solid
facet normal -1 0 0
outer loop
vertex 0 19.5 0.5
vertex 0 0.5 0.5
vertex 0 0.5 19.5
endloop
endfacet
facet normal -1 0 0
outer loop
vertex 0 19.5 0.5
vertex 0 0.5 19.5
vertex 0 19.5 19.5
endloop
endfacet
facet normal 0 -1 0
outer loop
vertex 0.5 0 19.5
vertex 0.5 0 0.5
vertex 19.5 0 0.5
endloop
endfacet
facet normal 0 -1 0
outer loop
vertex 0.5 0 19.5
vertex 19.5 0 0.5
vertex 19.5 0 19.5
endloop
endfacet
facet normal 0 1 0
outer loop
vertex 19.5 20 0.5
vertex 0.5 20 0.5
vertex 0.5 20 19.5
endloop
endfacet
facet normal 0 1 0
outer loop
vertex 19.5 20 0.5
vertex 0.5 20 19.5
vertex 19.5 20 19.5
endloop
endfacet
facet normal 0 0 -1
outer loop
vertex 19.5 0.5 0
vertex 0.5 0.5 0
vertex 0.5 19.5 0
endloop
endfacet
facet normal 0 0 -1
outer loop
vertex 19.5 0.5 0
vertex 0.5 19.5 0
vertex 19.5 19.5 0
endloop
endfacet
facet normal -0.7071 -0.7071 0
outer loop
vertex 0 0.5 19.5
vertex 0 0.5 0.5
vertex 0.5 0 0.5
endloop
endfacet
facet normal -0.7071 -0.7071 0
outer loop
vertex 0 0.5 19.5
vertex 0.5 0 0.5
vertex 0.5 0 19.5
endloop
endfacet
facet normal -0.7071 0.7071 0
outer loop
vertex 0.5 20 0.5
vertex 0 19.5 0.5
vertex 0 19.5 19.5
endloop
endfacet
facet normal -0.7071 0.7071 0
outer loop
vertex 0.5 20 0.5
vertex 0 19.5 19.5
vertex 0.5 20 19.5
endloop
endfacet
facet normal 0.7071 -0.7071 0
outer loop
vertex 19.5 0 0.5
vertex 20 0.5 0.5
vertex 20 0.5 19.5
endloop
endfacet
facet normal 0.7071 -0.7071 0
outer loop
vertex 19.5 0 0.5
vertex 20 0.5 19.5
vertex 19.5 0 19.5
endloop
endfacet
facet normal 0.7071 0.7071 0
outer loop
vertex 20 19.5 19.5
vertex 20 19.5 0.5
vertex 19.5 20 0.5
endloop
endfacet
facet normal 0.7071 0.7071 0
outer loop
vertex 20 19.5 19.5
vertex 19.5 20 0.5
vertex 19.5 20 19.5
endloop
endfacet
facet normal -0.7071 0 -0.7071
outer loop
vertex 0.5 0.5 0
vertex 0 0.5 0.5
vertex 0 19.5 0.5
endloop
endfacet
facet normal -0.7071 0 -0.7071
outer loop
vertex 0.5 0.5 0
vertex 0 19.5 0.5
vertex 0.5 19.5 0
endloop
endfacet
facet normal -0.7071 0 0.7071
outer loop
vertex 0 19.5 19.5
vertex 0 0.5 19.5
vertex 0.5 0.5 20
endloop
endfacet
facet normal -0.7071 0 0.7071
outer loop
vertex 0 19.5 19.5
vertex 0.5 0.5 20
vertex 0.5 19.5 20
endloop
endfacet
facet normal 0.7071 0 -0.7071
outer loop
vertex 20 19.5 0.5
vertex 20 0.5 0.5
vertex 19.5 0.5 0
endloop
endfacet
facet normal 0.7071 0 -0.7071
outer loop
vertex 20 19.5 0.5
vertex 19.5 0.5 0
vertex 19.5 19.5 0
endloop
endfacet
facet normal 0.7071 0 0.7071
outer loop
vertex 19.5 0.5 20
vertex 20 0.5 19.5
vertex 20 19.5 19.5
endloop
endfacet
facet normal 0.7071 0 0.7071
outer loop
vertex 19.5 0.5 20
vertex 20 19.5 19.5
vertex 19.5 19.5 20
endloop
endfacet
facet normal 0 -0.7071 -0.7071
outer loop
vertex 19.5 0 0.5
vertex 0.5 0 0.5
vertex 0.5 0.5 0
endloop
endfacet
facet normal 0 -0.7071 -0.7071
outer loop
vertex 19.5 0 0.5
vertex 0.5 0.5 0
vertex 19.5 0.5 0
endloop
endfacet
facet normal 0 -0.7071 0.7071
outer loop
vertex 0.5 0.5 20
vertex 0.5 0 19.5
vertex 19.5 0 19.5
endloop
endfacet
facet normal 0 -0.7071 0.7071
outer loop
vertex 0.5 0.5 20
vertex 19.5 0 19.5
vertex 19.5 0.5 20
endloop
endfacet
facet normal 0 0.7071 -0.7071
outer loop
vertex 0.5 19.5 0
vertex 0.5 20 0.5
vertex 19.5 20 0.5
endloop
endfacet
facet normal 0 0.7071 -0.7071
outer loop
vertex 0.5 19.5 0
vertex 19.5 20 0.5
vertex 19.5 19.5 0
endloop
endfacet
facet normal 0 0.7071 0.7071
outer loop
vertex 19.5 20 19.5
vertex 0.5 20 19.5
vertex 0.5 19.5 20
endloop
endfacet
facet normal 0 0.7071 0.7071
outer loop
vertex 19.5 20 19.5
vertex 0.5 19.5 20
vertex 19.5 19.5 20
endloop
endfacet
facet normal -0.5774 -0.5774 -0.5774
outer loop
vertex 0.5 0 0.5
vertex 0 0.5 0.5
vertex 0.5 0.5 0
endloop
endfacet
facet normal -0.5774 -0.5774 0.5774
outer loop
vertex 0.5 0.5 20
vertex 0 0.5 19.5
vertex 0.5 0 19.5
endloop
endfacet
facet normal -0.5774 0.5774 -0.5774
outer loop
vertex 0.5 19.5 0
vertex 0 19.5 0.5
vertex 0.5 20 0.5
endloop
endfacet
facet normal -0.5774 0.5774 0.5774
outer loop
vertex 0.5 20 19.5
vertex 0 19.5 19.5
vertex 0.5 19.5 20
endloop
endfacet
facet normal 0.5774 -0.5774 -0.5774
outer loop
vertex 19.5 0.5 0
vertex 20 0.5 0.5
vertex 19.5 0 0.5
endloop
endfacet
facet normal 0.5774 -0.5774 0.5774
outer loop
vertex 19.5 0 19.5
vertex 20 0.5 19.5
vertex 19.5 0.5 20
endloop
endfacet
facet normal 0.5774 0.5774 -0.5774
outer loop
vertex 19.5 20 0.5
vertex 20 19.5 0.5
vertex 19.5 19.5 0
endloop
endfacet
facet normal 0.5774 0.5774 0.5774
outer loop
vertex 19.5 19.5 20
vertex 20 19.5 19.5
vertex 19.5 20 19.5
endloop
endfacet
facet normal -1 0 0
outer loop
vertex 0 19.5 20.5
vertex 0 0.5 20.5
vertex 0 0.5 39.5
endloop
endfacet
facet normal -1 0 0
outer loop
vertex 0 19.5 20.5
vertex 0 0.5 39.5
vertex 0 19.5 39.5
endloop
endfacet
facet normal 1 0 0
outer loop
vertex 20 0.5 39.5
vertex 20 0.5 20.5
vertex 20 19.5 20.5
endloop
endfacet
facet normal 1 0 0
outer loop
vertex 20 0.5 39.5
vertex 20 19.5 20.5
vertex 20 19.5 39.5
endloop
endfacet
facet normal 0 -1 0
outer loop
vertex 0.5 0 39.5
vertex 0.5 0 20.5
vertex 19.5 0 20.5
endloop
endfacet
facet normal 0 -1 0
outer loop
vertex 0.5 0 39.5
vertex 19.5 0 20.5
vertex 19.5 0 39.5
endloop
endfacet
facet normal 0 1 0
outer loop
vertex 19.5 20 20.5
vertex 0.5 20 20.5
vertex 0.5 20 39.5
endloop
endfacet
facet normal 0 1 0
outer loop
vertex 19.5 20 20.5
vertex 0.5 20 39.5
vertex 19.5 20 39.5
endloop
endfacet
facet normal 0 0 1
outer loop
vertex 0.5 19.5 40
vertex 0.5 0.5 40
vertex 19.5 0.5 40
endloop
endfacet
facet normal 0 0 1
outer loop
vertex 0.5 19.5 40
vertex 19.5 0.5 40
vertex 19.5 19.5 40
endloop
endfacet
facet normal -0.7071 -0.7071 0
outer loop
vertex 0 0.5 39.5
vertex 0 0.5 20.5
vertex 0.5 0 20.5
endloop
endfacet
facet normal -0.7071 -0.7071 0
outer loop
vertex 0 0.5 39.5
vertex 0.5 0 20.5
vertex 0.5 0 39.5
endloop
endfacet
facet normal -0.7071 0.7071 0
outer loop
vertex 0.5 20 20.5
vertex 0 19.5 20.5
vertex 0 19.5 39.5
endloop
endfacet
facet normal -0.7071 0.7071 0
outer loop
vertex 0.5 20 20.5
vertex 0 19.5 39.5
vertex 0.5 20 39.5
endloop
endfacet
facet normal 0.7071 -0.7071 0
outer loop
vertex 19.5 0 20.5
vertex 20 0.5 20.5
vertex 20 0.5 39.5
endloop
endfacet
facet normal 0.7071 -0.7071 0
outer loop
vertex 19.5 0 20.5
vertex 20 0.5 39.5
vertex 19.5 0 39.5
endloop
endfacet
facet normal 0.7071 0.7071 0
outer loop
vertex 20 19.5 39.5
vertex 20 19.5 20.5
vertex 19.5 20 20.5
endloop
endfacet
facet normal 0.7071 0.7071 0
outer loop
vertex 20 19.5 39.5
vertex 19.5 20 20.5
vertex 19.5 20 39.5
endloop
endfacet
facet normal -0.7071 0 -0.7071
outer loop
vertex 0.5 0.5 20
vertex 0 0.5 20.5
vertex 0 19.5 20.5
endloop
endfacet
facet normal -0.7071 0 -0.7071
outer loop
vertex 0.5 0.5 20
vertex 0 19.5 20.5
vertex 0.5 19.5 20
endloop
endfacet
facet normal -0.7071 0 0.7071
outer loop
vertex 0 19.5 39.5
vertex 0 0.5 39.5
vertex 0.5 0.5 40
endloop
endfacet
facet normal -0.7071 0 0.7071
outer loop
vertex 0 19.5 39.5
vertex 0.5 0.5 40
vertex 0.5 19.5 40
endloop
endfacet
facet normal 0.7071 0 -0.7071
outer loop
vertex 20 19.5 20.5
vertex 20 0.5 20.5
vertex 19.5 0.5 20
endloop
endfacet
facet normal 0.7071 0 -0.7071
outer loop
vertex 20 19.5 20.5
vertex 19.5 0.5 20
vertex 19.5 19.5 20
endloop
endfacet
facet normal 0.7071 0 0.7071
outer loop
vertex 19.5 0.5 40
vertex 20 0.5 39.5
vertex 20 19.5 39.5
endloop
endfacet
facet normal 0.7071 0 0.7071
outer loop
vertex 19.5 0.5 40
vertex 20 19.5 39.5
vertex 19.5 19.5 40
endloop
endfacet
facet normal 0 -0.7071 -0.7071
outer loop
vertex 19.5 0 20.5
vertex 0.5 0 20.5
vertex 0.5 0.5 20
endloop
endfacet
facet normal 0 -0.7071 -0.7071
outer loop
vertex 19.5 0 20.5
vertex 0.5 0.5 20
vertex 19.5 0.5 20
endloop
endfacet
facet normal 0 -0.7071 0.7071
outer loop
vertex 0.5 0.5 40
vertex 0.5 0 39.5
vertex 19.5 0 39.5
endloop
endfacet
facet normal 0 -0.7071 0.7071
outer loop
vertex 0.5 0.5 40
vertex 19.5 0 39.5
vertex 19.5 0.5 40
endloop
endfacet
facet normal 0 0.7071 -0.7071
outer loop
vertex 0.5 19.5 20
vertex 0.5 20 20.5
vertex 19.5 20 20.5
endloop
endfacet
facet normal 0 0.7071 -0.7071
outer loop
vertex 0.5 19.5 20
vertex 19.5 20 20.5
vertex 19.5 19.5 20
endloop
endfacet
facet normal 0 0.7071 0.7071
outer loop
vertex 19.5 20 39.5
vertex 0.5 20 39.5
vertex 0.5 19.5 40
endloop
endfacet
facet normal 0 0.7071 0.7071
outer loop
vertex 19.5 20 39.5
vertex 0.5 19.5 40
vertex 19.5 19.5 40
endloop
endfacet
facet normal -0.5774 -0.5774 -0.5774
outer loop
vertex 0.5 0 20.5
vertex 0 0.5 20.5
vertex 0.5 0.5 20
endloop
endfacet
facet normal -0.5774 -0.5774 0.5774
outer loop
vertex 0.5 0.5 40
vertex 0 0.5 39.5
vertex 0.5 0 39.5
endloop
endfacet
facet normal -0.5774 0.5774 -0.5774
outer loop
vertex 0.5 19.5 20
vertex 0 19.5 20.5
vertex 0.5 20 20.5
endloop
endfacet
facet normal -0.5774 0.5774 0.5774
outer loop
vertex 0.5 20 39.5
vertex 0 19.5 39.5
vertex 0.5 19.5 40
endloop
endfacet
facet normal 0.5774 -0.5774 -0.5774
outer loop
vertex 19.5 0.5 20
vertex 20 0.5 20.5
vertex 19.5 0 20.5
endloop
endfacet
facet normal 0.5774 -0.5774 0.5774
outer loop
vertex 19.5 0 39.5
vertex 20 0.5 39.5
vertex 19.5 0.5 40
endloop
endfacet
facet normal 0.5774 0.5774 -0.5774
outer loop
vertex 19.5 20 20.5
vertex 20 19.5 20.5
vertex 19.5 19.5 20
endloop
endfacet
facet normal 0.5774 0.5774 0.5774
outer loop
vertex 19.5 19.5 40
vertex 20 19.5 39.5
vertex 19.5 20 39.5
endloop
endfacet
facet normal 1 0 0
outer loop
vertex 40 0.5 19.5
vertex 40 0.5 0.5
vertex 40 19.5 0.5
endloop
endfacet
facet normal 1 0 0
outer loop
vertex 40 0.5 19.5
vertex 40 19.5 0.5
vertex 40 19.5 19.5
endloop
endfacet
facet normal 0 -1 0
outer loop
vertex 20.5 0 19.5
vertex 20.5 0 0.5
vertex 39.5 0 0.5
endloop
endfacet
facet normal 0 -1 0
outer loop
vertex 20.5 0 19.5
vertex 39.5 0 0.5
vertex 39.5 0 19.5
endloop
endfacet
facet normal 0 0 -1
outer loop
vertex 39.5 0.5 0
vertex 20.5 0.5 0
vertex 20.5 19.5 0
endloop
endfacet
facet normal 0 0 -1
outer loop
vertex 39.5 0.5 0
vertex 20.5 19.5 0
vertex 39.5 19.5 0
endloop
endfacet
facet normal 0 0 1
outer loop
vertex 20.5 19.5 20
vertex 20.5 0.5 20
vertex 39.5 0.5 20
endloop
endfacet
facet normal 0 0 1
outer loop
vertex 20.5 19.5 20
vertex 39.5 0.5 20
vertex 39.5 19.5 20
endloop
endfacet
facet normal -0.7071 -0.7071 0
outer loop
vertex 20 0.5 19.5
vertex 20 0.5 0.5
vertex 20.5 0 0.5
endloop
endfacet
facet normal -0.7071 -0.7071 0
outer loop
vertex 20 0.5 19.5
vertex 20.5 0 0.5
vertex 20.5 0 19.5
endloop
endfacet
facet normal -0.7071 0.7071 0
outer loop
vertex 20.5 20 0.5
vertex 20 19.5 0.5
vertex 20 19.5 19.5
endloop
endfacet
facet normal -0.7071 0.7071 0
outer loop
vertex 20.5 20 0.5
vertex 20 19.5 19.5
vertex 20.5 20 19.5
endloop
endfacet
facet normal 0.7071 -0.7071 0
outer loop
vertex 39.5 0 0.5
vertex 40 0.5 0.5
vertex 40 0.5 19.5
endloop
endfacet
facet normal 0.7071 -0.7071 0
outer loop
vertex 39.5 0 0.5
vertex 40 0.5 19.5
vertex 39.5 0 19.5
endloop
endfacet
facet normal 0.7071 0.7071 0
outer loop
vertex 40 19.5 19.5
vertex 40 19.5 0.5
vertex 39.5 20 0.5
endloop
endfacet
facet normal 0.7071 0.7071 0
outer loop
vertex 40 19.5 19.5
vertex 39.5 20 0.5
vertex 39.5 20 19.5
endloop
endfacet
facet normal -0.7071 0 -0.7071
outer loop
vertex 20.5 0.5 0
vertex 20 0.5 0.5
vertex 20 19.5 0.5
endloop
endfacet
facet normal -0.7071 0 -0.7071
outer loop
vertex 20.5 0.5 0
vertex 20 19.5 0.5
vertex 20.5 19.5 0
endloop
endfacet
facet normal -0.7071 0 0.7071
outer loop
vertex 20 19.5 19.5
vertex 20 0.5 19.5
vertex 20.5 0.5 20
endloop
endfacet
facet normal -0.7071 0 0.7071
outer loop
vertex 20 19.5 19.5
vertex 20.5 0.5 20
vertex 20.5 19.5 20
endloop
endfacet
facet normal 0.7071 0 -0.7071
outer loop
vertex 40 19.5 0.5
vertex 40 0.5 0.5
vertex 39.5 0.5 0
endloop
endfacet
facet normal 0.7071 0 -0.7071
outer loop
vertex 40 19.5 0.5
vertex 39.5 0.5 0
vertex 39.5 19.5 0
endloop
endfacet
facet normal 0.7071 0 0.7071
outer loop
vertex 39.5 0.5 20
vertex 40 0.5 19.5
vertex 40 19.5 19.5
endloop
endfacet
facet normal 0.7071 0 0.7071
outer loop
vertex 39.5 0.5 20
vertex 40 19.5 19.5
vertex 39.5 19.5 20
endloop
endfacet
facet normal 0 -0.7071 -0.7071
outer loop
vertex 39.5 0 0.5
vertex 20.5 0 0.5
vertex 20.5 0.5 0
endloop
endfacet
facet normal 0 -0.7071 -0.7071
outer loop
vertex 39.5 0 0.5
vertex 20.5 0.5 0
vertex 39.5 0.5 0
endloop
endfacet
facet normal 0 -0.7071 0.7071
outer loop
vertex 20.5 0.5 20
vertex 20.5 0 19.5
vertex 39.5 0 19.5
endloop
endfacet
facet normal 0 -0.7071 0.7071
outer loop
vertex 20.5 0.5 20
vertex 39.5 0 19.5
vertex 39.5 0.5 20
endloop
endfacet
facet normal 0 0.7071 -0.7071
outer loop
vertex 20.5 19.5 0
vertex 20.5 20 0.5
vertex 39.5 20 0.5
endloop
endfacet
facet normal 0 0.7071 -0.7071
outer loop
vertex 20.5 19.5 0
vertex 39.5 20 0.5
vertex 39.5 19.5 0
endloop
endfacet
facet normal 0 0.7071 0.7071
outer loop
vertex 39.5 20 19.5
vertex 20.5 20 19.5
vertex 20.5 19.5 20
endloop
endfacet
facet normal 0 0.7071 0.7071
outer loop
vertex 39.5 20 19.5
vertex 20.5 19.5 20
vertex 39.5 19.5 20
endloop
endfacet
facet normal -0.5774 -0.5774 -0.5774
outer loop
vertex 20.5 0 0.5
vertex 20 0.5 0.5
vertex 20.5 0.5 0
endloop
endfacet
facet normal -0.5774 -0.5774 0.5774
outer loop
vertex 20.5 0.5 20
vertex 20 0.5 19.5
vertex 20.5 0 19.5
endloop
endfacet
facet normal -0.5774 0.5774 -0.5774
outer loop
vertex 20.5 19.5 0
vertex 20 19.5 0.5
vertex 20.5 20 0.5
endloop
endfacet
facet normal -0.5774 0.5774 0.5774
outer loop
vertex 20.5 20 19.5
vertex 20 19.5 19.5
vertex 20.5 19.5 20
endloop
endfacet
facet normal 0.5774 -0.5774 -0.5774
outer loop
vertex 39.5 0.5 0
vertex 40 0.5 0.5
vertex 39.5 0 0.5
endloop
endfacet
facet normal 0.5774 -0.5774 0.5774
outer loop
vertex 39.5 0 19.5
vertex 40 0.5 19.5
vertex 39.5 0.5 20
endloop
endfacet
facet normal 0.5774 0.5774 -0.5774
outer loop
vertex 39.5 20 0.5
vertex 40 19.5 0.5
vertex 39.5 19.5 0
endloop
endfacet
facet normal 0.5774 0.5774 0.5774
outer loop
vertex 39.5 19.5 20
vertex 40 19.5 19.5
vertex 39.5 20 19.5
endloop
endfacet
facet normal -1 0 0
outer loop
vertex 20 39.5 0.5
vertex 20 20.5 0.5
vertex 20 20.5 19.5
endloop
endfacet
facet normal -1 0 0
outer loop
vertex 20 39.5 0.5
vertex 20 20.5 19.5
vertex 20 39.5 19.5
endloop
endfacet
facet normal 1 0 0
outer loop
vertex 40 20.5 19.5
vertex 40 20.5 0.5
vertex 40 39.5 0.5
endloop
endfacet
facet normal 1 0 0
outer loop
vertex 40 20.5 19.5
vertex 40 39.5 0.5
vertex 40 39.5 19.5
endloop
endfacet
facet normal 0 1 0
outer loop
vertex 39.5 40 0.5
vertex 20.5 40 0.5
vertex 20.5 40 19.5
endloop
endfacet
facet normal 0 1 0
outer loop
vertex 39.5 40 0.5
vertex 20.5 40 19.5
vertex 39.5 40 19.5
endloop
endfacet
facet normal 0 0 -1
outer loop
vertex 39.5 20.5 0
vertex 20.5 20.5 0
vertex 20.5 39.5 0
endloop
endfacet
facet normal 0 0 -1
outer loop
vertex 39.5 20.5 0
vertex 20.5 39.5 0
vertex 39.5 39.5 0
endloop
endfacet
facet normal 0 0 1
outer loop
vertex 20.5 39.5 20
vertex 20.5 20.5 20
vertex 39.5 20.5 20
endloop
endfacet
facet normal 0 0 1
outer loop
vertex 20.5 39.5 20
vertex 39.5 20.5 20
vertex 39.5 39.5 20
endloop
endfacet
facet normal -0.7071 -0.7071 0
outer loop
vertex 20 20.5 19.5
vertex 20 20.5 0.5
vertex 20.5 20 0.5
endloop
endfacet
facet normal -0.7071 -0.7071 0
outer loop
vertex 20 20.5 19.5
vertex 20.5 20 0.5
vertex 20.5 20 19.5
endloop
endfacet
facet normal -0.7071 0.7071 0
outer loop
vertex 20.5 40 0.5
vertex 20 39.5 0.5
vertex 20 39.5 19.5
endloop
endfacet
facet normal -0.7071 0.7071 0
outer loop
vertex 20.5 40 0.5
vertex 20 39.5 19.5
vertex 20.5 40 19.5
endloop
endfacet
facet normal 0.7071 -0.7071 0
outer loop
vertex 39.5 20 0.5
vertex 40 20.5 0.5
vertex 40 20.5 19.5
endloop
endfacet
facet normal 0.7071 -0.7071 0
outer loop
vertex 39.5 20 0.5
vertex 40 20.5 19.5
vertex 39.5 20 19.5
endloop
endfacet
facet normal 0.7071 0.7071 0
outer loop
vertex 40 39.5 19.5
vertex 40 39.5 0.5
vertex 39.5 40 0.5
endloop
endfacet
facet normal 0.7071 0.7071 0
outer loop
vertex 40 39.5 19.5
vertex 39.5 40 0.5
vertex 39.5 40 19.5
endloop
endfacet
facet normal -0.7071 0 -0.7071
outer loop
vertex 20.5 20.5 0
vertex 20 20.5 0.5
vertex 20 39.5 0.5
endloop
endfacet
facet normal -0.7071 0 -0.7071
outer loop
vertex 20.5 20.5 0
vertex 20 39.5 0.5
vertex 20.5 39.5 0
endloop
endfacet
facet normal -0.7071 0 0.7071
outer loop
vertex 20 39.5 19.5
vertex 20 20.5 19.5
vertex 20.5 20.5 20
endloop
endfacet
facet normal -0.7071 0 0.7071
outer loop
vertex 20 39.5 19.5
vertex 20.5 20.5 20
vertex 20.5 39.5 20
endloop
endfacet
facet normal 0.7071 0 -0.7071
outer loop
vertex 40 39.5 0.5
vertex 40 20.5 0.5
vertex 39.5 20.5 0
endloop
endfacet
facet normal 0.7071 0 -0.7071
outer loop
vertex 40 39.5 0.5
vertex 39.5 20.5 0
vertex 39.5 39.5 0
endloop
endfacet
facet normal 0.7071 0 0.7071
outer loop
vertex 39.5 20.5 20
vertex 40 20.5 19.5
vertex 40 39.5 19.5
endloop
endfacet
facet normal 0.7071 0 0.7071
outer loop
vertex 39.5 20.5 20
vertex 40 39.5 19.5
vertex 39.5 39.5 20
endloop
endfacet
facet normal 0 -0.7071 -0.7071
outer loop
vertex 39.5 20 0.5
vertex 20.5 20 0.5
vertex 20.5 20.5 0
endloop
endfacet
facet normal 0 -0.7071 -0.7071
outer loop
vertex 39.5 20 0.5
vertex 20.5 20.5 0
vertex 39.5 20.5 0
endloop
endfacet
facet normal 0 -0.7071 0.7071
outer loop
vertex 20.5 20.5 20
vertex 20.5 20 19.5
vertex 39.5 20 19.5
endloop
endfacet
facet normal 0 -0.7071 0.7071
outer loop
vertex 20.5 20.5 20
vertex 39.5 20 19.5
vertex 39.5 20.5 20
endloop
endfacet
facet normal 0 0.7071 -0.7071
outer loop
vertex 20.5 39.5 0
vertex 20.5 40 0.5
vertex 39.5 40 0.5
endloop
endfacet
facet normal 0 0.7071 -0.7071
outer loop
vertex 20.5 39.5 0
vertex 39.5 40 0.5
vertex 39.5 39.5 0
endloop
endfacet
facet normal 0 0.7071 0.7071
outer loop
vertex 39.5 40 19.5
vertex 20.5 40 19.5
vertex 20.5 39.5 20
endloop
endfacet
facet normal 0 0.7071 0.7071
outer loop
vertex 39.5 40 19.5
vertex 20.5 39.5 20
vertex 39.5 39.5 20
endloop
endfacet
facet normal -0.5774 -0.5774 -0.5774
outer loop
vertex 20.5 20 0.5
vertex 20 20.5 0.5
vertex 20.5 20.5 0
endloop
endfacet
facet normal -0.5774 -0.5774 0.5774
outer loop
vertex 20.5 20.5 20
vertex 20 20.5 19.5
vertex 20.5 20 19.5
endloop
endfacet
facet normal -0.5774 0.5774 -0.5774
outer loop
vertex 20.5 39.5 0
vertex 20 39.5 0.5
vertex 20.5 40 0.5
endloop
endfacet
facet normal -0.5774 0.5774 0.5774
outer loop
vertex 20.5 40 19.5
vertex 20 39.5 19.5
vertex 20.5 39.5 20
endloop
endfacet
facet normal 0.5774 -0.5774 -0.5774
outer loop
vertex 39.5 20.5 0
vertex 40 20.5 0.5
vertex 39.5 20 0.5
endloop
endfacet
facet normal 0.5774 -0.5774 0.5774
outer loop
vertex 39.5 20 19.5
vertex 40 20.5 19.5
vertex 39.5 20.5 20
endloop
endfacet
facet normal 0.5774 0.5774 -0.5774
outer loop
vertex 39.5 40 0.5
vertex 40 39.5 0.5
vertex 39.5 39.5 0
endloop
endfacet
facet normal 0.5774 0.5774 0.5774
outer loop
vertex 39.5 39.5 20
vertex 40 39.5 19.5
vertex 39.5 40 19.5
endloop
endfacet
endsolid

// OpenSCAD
// Wongo piece 3: Twisted hook. GPL-3.0; see README.txt.
// 0.5 mm chamfer at the default 20 mm pitch; unit scales everything.
unit = 20;
positions = [[0,0,0],[0,0,1],[1,0,0],[1,1,0]];
union() { for (p = positions) translate(p * unit) { scale([unit,unit,unit]) polyhedron(points=[[0,0.025,0.025],[0,0.025,0.975],[0,0.975,0.025],[0,0.975,0.975],[1,0.025,0.025],[1,0.025,0.975],[1,0.975,0.025],[1,0.975,0.975],[0.025,0,0.025],[0.025,0,0.975],[0.975,0,0.025],[0.975,0,0.975],[0.025,1,0.025],[0.025,1,0.975],[0.975,1,0.025],[0.975,1,0.975],[0.025,0.025,0],[0.025,0.975,0],[0.975,0.025,0],[0.975,0.975,0],[0.025,0.025,1],[0.025,0.975,1],[0.975,0.025,1],[0.975,0.975,1]], faces=[[3,1,0,2],[7,6,4,5],[11,10,8,9],[15,13,12,14],[19,17,16,18],[23,22,20,21],[9,8,0,1],[13,3,2,12],[11,5,4,10],[15,14,6,7],[17,2,0,16],[21,20,1,3],[19,18,4,6],[23,7,5,22],[18,16,8,10],[22,11,9,20],[19,14,12,17],[23,21,13,15],[16,0,8],[9,1,20],[12,2,17],[21,3,13],[10,4,18],[22,5,11],[19,6,14],[15,7,23]], convexity=10); } }
